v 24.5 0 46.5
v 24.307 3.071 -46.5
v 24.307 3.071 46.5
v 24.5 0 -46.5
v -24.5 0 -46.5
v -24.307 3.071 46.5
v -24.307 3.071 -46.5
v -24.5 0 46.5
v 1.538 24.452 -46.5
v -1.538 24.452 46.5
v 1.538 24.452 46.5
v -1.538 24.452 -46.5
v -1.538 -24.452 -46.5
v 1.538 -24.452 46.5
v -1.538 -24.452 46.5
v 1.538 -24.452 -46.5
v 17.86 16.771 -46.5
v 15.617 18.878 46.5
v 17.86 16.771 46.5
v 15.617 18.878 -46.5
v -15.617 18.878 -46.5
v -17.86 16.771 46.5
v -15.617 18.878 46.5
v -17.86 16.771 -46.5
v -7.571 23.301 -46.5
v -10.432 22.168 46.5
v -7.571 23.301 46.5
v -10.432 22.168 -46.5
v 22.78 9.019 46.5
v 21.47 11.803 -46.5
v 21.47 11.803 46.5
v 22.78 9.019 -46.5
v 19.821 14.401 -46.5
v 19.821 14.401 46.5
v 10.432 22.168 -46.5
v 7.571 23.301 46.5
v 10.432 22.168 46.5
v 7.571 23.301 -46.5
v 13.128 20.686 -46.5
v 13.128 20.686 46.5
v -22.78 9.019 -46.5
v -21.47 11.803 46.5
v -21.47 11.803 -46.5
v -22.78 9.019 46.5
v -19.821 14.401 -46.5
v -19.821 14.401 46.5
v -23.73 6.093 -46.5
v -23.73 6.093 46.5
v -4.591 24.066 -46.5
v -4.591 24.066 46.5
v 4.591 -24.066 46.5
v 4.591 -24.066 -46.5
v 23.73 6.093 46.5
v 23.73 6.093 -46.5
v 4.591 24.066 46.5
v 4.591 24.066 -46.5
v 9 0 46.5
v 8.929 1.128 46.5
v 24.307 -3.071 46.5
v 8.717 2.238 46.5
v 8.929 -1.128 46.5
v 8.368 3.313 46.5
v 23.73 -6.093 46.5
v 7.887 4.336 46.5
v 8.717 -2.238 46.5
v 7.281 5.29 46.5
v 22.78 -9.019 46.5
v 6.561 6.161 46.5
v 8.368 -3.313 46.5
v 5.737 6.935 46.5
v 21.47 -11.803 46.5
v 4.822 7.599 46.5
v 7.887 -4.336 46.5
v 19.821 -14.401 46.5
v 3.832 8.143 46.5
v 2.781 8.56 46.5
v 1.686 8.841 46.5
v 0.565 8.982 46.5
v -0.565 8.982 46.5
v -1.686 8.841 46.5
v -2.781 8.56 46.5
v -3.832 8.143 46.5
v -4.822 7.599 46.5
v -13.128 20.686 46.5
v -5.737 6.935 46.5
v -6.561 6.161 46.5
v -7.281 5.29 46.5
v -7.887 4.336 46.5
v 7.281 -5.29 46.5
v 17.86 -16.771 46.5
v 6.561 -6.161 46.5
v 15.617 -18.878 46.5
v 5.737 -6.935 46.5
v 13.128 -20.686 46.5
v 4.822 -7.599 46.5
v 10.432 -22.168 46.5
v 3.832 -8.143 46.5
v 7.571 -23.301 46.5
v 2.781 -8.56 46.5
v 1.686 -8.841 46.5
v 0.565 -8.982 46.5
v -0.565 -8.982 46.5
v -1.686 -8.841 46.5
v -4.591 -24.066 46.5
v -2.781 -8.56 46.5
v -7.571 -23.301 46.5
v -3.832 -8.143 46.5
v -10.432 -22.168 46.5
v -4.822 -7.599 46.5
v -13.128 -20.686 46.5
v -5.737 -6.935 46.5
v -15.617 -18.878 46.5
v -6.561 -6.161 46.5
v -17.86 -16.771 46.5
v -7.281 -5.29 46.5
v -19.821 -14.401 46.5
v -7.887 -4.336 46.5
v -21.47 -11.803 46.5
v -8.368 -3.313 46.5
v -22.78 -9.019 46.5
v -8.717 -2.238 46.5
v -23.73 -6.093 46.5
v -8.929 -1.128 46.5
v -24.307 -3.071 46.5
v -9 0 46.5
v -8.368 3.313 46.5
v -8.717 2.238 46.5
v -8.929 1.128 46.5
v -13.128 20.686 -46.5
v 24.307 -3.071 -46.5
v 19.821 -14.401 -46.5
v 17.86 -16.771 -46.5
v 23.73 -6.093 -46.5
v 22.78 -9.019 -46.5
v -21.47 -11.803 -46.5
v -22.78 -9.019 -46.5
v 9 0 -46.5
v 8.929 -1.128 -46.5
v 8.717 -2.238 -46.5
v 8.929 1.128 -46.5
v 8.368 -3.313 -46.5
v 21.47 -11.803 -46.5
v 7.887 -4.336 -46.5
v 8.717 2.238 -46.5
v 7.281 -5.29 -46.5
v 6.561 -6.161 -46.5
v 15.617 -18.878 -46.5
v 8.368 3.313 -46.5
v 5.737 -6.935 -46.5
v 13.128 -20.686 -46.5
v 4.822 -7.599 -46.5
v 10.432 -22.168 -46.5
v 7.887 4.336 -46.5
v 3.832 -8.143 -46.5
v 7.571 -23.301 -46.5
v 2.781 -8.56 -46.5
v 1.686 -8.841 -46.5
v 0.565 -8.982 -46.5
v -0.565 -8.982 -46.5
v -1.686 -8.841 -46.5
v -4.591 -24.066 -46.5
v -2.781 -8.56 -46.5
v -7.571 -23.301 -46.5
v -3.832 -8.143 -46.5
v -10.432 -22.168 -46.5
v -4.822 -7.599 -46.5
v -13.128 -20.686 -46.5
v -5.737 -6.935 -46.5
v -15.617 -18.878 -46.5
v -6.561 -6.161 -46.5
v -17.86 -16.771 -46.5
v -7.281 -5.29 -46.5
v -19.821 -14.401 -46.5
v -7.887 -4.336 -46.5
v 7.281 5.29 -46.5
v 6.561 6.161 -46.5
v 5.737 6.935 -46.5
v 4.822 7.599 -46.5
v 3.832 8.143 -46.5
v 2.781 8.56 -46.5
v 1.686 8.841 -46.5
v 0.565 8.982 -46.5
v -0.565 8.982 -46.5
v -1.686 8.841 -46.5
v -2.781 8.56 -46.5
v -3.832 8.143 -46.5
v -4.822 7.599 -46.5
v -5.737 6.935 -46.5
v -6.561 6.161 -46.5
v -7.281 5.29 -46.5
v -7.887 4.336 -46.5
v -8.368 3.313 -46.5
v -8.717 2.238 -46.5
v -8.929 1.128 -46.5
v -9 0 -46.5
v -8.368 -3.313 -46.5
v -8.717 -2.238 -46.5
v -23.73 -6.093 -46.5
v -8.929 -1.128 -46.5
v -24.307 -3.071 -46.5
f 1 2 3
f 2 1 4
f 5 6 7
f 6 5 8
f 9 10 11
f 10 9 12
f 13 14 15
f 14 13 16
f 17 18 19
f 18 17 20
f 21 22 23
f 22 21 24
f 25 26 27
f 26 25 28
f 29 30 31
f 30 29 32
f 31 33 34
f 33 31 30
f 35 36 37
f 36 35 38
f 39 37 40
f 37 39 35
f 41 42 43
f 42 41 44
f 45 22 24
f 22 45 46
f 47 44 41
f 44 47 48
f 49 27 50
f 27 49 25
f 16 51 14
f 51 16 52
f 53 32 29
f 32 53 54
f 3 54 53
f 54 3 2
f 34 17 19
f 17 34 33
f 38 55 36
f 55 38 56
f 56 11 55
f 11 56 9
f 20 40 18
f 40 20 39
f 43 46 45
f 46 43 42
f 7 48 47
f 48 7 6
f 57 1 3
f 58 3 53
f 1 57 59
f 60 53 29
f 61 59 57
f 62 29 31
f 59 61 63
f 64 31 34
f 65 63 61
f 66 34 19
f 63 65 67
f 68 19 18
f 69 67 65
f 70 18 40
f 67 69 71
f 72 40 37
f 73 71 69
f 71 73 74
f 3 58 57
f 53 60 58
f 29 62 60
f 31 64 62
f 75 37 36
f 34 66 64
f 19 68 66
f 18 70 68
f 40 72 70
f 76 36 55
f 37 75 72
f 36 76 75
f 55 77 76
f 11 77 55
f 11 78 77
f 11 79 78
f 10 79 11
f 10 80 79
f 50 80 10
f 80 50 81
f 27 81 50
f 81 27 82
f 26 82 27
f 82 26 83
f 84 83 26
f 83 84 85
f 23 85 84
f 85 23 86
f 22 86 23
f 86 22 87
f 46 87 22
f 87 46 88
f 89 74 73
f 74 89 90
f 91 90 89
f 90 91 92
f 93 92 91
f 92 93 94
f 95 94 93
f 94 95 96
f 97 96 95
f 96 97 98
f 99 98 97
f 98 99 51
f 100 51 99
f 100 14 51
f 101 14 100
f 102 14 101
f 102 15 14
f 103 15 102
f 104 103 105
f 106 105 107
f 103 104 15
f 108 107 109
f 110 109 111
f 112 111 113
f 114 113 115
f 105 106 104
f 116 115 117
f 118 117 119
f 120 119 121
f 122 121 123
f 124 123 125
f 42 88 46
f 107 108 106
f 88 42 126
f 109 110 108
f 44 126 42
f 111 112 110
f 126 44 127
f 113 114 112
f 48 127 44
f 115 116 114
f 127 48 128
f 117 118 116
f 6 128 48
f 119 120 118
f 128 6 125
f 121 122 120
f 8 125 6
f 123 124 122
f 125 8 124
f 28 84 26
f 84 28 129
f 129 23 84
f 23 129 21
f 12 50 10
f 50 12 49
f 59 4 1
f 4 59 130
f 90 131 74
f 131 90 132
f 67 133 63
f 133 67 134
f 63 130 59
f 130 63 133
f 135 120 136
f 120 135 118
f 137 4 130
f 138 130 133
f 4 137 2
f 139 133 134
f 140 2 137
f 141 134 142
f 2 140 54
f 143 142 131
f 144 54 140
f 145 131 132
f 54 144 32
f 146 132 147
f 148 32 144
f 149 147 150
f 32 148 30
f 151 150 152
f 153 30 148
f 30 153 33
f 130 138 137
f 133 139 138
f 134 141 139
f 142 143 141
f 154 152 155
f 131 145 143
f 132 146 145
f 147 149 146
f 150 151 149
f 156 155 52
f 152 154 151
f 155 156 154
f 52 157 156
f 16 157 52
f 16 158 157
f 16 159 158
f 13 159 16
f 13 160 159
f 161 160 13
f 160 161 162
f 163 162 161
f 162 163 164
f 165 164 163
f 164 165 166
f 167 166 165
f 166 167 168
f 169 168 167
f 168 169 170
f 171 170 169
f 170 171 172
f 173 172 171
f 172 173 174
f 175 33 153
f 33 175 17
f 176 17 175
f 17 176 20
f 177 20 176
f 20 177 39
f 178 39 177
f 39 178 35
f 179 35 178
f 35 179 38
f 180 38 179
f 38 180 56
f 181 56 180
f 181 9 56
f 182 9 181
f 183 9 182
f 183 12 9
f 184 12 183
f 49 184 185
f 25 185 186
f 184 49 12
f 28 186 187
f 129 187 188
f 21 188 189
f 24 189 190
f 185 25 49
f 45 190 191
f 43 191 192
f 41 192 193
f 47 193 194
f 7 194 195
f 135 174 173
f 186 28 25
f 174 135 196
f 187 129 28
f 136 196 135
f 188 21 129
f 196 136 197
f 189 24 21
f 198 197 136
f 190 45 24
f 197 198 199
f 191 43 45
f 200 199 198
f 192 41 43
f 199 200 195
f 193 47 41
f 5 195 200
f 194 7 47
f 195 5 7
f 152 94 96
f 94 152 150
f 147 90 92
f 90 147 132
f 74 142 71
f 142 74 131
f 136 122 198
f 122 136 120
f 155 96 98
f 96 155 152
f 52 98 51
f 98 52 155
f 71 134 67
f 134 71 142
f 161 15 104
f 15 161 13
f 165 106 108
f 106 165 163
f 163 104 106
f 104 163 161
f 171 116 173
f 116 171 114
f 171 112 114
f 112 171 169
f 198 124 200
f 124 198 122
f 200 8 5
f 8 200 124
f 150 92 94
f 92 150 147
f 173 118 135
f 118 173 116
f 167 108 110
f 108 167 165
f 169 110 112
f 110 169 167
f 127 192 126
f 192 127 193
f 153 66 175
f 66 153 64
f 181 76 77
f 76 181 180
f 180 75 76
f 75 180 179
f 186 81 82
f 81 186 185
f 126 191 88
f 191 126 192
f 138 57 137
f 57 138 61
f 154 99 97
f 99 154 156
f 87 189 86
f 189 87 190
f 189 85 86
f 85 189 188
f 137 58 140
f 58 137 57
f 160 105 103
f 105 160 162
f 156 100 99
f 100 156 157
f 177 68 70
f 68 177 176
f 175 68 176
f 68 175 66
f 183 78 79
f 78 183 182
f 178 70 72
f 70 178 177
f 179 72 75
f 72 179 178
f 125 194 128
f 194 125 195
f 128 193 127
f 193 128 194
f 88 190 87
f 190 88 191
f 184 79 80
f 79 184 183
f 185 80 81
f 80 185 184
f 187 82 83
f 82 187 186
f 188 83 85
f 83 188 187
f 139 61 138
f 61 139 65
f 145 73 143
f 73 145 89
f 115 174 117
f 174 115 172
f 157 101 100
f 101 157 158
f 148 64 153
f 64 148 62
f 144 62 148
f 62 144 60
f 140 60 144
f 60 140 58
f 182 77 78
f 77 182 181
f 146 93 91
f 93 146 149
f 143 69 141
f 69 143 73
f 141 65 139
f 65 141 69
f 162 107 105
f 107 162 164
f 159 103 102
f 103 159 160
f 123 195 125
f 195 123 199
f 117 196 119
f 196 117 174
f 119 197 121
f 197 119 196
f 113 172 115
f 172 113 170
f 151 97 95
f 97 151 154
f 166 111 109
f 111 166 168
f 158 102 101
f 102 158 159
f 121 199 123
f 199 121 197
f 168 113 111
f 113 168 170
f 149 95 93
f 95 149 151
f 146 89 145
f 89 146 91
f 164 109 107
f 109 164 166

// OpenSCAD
$fn = 50;


difference() {
	union() {
		translate(v = [0, 0, -46.5000000000]) {
			cylinder(h = 93, r = 24.5000000000);
		}
	}
	union() {
		translate(v = [0, 0, -100.0000000000]) {
			cylinder(h = 200, r = 9);
		}
	}
}
